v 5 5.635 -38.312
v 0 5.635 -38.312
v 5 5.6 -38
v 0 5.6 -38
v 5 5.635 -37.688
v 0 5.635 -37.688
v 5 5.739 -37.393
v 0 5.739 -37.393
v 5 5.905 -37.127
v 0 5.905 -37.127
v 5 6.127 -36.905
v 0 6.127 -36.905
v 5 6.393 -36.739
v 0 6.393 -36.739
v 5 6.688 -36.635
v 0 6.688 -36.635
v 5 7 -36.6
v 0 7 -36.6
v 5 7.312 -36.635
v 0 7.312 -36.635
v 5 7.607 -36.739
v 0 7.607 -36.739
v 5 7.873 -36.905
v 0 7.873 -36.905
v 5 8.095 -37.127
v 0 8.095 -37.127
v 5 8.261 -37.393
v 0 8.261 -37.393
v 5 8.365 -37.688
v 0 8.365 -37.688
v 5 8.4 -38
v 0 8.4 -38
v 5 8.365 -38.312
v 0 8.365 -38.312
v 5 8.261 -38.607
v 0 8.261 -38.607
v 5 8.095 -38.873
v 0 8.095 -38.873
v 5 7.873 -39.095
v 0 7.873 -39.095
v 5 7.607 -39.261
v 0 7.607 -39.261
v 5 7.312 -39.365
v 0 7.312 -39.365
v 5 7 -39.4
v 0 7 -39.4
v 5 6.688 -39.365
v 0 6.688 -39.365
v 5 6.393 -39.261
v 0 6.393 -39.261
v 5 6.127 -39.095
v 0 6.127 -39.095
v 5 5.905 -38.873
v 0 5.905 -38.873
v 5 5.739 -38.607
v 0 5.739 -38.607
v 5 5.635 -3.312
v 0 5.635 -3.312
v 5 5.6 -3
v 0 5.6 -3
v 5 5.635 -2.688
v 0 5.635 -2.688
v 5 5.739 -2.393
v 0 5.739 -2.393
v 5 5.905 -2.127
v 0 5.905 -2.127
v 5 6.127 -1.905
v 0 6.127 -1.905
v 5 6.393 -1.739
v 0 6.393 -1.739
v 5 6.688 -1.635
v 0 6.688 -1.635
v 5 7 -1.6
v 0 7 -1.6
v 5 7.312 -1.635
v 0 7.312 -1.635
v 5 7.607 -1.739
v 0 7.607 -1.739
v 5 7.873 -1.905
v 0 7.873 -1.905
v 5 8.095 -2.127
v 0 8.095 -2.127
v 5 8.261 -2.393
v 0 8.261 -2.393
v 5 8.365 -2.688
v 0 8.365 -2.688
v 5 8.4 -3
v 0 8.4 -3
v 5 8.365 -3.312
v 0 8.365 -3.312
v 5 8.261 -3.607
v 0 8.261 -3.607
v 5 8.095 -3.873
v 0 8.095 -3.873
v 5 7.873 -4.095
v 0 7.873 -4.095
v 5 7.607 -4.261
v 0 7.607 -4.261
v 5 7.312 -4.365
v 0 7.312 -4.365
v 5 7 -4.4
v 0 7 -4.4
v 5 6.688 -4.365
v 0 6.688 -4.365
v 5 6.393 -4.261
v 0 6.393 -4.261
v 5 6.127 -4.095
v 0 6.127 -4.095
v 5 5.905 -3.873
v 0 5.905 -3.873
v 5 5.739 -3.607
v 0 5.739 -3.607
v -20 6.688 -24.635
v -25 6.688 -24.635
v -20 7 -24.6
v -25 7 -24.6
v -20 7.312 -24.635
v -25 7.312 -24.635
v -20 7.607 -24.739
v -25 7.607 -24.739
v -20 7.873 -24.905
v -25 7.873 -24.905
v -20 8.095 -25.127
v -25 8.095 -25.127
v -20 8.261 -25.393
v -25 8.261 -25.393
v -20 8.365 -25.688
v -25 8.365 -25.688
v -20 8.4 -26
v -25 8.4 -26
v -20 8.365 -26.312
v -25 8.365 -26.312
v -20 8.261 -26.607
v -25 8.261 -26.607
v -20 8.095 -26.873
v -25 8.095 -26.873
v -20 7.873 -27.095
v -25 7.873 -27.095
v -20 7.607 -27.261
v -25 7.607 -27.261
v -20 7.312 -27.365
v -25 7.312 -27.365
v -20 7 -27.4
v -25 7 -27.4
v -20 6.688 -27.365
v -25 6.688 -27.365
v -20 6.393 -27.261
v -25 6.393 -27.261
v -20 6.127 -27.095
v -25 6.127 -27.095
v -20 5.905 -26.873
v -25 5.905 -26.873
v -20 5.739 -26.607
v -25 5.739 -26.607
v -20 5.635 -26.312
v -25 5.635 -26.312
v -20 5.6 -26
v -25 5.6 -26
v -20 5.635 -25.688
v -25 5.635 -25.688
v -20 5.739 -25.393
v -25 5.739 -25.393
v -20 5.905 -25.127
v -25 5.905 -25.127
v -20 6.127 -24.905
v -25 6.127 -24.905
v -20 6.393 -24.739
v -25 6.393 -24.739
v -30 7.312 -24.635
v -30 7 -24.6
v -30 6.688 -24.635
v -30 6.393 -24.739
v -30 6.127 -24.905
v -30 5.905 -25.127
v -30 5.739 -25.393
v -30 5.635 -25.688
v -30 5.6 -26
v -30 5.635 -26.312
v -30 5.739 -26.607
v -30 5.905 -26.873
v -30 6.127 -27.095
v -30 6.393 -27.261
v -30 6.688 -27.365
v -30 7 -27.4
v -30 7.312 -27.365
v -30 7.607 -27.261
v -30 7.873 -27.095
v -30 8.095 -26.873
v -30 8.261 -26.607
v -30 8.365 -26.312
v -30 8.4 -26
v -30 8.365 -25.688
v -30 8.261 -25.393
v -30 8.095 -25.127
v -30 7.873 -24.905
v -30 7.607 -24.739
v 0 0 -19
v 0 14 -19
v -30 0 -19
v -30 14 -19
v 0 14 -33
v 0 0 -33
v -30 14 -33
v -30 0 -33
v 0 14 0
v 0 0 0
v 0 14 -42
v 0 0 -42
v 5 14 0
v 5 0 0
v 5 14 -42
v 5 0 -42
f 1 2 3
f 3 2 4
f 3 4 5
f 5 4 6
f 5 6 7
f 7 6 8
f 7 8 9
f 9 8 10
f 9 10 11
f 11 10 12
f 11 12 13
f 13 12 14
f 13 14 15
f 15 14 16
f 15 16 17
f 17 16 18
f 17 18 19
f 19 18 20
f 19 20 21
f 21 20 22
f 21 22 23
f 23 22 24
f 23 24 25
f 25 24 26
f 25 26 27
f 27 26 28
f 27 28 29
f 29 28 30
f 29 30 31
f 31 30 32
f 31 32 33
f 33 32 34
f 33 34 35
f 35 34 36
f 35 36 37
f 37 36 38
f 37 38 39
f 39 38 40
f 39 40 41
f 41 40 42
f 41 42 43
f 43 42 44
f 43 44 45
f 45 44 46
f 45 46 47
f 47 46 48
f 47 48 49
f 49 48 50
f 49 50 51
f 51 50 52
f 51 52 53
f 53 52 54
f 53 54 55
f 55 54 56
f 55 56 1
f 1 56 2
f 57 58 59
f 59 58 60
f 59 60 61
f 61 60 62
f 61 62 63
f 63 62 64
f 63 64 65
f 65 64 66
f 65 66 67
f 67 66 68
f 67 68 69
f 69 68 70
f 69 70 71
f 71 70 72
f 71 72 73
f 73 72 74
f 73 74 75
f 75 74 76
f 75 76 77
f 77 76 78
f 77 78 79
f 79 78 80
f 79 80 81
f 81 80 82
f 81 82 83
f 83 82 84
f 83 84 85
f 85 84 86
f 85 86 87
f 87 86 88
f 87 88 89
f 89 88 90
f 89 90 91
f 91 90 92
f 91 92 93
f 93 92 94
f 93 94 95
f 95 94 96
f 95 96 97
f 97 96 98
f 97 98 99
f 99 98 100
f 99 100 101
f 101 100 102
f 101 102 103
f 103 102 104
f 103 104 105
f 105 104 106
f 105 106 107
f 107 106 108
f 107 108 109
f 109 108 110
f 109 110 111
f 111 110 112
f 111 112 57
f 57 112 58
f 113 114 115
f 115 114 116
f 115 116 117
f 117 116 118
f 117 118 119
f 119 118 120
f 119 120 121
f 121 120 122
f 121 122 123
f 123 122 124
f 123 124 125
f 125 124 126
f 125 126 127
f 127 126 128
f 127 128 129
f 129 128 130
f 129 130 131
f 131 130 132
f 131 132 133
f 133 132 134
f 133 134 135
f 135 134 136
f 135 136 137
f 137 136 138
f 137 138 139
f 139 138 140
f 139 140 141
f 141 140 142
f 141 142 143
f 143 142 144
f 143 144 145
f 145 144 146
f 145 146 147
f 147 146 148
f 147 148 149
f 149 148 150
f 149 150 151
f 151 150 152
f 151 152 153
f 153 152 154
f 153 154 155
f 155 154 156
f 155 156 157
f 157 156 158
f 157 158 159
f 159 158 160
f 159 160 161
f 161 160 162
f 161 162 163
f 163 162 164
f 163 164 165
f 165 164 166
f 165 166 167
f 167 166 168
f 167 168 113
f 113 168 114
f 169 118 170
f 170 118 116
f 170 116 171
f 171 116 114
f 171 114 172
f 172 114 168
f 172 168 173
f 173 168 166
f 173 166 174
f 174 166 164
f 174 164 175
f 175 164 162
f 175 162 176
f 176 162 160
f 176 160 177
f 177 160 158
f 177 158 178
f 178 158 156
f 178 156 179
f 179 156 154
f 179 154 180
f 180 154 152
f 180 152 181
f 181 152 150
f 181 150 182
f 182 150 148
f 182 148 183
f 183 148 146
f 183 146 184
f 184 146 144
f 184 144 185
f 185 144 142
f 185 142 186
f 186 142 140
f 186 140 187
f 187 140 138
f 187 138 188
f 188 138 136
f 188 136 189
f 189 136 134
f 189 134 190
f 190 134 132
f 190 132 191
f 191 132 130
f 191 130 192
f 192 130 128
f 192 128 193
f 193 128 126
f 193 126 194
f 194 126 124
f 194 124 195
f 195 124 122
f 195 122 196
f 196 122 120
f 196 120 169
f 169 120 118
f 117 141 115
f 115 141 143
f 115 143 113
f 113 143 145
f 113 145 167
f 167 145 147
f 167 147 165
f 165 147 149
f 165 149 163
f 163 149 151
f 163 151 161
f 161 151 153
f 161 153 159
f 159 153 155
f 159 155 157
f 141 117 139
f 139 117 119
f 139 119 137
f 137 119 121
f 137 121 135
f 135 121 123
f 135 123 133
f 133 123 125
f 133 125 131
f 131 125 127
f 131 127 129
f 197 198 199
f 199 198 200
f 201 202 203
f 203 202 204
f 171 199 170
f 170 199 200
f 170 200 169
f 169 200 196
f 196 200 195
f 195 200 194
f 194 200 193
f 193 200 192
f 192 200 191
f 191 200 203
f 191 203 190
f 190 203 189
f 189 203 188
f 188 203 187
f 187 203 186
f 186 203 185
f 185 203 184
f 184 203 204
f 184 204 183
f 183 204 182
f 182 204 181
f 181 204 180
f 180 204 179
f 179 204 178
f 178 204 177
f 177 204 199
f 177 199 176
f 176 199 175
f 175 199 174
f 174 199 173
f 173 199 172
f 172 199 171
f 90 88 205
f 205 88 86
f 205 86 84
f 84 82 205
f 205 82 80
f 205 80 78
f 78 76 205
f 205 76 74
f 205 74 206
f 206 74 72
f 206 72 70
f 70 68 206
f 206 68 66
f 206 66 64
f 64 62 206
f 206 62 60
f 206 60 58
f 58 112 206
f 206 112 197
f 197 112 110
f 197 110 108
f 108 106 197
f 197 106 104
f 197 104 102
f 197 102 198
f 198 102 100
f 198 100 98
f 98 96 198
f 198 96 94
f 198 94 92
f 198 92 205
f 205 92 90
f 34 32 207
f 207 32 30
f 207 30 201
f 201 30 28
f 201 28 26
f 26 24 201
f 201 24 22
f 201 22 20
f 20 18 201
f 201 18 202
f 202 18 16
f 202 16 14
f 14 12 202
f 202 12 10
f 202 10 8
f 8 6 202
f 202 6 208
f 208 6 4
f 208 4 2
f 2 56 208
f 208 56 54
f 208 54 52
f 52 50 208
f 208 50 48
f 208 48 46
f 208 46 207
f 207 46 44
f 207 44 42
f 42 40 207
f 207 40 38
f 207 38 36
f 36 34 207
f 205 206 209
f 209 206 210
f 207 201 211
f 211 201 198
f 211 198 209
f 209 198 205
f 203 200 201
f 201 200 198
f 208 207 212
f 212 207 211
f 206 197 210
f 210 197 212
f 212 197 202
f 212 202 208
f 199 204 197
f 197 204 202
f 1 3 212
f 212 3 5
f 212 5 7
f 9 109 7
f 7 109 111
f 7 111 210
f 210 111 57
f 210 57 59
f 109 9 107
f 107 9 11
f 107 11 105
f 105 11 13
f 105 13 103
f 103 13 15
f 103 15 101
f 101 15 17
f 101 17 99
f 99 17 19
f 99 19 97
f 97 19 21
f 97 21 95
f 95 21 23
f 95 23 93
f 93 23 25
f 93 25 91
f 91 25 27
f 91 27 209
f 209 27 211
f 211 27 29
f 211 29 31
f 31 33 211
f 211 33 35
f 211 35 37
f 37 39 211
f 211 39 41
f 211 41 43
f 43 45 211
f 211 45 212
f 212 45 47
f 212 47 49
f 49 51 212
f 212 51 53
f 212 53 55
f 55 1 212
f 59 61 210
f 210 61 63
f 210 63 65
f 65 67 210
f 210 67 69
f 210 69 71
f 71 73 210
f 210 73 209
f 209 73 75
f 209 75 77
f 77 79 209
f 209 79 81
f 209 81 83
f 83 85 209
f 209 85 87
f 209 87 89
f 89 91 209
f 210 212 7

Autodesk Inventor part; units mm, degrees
ref_plane "YZ Plane" through (0, 0, 0) normal (1, 0, 0) x (0, 1, 0)
ref_plane "XZ Plane" through (0, 0, 0) normal (0, 1, 0) x (-1, 0, 0)
ref_plane "XY Plane" through (0, 0, 0) normal (0, 0, 1) x (1, 0, 0)
sketch "Sketch1" plane through (0, 0, 0) normal (1, 0, 0) x (0, 1, 0)
  line L0 (0, 0) -> (14, 0)
  line L1 (14, 0) -> (14, -42)
  line L2 (14, -42) -> (0, -42)
  line L3 (0, -42) -> (0, 0)
  line L4 (14, -19) -> (0, -19)
  line L5 (0, -19) -> (0, -33)
  line L6 (0, -33) -> (14, -33)
  line L7 (14, -33) -> (14, -19)
  circle A0 centre (7, -3) radius 1.4
  circle A1 centre (7, -38) radius 1.4
  point P0 (14, -33)
  point P1 (0, -19)
  dimension "d10" = 14
  dimension "d11" = 42
  dimension "d12" = 14
  dimension "d14" = 2.8
  dimension "d15" = 2.8
  dimension "d16" = 35
  dimension "d17" = 4
  dimension "d18" = 5
extrude "Extrusion1" add sketch "Sketch1" along normal blind 5 contours L0 L1 L4 L3 | L4 L1 L6 L3 | L6 L1 L2 L3 | A0 | A1
extrude "Extrusion2" add sketch "Sketch1" against normal blind 30 contours L4 L1 L6 L3
sketch "Sketch4" plane through (-30, 0, 0) normal (-1, 0, 0) x (0, 0, 1)
  line L0 (0, 0) -> (-42, 0) projected
  line L1 (-19, 14) -> (-19, 0) projected
  circle A0 centre (-26, 7) radius 1.4
  dimension "d19" = 2.8
extrude "Extrusion5" cut sketch "Sketch4" against normal blind 10
extrude "Extrusion6" cut sketch "Sketch1" along normal blind 10 contours A0 | A1
properties part number "_3DPrint"
